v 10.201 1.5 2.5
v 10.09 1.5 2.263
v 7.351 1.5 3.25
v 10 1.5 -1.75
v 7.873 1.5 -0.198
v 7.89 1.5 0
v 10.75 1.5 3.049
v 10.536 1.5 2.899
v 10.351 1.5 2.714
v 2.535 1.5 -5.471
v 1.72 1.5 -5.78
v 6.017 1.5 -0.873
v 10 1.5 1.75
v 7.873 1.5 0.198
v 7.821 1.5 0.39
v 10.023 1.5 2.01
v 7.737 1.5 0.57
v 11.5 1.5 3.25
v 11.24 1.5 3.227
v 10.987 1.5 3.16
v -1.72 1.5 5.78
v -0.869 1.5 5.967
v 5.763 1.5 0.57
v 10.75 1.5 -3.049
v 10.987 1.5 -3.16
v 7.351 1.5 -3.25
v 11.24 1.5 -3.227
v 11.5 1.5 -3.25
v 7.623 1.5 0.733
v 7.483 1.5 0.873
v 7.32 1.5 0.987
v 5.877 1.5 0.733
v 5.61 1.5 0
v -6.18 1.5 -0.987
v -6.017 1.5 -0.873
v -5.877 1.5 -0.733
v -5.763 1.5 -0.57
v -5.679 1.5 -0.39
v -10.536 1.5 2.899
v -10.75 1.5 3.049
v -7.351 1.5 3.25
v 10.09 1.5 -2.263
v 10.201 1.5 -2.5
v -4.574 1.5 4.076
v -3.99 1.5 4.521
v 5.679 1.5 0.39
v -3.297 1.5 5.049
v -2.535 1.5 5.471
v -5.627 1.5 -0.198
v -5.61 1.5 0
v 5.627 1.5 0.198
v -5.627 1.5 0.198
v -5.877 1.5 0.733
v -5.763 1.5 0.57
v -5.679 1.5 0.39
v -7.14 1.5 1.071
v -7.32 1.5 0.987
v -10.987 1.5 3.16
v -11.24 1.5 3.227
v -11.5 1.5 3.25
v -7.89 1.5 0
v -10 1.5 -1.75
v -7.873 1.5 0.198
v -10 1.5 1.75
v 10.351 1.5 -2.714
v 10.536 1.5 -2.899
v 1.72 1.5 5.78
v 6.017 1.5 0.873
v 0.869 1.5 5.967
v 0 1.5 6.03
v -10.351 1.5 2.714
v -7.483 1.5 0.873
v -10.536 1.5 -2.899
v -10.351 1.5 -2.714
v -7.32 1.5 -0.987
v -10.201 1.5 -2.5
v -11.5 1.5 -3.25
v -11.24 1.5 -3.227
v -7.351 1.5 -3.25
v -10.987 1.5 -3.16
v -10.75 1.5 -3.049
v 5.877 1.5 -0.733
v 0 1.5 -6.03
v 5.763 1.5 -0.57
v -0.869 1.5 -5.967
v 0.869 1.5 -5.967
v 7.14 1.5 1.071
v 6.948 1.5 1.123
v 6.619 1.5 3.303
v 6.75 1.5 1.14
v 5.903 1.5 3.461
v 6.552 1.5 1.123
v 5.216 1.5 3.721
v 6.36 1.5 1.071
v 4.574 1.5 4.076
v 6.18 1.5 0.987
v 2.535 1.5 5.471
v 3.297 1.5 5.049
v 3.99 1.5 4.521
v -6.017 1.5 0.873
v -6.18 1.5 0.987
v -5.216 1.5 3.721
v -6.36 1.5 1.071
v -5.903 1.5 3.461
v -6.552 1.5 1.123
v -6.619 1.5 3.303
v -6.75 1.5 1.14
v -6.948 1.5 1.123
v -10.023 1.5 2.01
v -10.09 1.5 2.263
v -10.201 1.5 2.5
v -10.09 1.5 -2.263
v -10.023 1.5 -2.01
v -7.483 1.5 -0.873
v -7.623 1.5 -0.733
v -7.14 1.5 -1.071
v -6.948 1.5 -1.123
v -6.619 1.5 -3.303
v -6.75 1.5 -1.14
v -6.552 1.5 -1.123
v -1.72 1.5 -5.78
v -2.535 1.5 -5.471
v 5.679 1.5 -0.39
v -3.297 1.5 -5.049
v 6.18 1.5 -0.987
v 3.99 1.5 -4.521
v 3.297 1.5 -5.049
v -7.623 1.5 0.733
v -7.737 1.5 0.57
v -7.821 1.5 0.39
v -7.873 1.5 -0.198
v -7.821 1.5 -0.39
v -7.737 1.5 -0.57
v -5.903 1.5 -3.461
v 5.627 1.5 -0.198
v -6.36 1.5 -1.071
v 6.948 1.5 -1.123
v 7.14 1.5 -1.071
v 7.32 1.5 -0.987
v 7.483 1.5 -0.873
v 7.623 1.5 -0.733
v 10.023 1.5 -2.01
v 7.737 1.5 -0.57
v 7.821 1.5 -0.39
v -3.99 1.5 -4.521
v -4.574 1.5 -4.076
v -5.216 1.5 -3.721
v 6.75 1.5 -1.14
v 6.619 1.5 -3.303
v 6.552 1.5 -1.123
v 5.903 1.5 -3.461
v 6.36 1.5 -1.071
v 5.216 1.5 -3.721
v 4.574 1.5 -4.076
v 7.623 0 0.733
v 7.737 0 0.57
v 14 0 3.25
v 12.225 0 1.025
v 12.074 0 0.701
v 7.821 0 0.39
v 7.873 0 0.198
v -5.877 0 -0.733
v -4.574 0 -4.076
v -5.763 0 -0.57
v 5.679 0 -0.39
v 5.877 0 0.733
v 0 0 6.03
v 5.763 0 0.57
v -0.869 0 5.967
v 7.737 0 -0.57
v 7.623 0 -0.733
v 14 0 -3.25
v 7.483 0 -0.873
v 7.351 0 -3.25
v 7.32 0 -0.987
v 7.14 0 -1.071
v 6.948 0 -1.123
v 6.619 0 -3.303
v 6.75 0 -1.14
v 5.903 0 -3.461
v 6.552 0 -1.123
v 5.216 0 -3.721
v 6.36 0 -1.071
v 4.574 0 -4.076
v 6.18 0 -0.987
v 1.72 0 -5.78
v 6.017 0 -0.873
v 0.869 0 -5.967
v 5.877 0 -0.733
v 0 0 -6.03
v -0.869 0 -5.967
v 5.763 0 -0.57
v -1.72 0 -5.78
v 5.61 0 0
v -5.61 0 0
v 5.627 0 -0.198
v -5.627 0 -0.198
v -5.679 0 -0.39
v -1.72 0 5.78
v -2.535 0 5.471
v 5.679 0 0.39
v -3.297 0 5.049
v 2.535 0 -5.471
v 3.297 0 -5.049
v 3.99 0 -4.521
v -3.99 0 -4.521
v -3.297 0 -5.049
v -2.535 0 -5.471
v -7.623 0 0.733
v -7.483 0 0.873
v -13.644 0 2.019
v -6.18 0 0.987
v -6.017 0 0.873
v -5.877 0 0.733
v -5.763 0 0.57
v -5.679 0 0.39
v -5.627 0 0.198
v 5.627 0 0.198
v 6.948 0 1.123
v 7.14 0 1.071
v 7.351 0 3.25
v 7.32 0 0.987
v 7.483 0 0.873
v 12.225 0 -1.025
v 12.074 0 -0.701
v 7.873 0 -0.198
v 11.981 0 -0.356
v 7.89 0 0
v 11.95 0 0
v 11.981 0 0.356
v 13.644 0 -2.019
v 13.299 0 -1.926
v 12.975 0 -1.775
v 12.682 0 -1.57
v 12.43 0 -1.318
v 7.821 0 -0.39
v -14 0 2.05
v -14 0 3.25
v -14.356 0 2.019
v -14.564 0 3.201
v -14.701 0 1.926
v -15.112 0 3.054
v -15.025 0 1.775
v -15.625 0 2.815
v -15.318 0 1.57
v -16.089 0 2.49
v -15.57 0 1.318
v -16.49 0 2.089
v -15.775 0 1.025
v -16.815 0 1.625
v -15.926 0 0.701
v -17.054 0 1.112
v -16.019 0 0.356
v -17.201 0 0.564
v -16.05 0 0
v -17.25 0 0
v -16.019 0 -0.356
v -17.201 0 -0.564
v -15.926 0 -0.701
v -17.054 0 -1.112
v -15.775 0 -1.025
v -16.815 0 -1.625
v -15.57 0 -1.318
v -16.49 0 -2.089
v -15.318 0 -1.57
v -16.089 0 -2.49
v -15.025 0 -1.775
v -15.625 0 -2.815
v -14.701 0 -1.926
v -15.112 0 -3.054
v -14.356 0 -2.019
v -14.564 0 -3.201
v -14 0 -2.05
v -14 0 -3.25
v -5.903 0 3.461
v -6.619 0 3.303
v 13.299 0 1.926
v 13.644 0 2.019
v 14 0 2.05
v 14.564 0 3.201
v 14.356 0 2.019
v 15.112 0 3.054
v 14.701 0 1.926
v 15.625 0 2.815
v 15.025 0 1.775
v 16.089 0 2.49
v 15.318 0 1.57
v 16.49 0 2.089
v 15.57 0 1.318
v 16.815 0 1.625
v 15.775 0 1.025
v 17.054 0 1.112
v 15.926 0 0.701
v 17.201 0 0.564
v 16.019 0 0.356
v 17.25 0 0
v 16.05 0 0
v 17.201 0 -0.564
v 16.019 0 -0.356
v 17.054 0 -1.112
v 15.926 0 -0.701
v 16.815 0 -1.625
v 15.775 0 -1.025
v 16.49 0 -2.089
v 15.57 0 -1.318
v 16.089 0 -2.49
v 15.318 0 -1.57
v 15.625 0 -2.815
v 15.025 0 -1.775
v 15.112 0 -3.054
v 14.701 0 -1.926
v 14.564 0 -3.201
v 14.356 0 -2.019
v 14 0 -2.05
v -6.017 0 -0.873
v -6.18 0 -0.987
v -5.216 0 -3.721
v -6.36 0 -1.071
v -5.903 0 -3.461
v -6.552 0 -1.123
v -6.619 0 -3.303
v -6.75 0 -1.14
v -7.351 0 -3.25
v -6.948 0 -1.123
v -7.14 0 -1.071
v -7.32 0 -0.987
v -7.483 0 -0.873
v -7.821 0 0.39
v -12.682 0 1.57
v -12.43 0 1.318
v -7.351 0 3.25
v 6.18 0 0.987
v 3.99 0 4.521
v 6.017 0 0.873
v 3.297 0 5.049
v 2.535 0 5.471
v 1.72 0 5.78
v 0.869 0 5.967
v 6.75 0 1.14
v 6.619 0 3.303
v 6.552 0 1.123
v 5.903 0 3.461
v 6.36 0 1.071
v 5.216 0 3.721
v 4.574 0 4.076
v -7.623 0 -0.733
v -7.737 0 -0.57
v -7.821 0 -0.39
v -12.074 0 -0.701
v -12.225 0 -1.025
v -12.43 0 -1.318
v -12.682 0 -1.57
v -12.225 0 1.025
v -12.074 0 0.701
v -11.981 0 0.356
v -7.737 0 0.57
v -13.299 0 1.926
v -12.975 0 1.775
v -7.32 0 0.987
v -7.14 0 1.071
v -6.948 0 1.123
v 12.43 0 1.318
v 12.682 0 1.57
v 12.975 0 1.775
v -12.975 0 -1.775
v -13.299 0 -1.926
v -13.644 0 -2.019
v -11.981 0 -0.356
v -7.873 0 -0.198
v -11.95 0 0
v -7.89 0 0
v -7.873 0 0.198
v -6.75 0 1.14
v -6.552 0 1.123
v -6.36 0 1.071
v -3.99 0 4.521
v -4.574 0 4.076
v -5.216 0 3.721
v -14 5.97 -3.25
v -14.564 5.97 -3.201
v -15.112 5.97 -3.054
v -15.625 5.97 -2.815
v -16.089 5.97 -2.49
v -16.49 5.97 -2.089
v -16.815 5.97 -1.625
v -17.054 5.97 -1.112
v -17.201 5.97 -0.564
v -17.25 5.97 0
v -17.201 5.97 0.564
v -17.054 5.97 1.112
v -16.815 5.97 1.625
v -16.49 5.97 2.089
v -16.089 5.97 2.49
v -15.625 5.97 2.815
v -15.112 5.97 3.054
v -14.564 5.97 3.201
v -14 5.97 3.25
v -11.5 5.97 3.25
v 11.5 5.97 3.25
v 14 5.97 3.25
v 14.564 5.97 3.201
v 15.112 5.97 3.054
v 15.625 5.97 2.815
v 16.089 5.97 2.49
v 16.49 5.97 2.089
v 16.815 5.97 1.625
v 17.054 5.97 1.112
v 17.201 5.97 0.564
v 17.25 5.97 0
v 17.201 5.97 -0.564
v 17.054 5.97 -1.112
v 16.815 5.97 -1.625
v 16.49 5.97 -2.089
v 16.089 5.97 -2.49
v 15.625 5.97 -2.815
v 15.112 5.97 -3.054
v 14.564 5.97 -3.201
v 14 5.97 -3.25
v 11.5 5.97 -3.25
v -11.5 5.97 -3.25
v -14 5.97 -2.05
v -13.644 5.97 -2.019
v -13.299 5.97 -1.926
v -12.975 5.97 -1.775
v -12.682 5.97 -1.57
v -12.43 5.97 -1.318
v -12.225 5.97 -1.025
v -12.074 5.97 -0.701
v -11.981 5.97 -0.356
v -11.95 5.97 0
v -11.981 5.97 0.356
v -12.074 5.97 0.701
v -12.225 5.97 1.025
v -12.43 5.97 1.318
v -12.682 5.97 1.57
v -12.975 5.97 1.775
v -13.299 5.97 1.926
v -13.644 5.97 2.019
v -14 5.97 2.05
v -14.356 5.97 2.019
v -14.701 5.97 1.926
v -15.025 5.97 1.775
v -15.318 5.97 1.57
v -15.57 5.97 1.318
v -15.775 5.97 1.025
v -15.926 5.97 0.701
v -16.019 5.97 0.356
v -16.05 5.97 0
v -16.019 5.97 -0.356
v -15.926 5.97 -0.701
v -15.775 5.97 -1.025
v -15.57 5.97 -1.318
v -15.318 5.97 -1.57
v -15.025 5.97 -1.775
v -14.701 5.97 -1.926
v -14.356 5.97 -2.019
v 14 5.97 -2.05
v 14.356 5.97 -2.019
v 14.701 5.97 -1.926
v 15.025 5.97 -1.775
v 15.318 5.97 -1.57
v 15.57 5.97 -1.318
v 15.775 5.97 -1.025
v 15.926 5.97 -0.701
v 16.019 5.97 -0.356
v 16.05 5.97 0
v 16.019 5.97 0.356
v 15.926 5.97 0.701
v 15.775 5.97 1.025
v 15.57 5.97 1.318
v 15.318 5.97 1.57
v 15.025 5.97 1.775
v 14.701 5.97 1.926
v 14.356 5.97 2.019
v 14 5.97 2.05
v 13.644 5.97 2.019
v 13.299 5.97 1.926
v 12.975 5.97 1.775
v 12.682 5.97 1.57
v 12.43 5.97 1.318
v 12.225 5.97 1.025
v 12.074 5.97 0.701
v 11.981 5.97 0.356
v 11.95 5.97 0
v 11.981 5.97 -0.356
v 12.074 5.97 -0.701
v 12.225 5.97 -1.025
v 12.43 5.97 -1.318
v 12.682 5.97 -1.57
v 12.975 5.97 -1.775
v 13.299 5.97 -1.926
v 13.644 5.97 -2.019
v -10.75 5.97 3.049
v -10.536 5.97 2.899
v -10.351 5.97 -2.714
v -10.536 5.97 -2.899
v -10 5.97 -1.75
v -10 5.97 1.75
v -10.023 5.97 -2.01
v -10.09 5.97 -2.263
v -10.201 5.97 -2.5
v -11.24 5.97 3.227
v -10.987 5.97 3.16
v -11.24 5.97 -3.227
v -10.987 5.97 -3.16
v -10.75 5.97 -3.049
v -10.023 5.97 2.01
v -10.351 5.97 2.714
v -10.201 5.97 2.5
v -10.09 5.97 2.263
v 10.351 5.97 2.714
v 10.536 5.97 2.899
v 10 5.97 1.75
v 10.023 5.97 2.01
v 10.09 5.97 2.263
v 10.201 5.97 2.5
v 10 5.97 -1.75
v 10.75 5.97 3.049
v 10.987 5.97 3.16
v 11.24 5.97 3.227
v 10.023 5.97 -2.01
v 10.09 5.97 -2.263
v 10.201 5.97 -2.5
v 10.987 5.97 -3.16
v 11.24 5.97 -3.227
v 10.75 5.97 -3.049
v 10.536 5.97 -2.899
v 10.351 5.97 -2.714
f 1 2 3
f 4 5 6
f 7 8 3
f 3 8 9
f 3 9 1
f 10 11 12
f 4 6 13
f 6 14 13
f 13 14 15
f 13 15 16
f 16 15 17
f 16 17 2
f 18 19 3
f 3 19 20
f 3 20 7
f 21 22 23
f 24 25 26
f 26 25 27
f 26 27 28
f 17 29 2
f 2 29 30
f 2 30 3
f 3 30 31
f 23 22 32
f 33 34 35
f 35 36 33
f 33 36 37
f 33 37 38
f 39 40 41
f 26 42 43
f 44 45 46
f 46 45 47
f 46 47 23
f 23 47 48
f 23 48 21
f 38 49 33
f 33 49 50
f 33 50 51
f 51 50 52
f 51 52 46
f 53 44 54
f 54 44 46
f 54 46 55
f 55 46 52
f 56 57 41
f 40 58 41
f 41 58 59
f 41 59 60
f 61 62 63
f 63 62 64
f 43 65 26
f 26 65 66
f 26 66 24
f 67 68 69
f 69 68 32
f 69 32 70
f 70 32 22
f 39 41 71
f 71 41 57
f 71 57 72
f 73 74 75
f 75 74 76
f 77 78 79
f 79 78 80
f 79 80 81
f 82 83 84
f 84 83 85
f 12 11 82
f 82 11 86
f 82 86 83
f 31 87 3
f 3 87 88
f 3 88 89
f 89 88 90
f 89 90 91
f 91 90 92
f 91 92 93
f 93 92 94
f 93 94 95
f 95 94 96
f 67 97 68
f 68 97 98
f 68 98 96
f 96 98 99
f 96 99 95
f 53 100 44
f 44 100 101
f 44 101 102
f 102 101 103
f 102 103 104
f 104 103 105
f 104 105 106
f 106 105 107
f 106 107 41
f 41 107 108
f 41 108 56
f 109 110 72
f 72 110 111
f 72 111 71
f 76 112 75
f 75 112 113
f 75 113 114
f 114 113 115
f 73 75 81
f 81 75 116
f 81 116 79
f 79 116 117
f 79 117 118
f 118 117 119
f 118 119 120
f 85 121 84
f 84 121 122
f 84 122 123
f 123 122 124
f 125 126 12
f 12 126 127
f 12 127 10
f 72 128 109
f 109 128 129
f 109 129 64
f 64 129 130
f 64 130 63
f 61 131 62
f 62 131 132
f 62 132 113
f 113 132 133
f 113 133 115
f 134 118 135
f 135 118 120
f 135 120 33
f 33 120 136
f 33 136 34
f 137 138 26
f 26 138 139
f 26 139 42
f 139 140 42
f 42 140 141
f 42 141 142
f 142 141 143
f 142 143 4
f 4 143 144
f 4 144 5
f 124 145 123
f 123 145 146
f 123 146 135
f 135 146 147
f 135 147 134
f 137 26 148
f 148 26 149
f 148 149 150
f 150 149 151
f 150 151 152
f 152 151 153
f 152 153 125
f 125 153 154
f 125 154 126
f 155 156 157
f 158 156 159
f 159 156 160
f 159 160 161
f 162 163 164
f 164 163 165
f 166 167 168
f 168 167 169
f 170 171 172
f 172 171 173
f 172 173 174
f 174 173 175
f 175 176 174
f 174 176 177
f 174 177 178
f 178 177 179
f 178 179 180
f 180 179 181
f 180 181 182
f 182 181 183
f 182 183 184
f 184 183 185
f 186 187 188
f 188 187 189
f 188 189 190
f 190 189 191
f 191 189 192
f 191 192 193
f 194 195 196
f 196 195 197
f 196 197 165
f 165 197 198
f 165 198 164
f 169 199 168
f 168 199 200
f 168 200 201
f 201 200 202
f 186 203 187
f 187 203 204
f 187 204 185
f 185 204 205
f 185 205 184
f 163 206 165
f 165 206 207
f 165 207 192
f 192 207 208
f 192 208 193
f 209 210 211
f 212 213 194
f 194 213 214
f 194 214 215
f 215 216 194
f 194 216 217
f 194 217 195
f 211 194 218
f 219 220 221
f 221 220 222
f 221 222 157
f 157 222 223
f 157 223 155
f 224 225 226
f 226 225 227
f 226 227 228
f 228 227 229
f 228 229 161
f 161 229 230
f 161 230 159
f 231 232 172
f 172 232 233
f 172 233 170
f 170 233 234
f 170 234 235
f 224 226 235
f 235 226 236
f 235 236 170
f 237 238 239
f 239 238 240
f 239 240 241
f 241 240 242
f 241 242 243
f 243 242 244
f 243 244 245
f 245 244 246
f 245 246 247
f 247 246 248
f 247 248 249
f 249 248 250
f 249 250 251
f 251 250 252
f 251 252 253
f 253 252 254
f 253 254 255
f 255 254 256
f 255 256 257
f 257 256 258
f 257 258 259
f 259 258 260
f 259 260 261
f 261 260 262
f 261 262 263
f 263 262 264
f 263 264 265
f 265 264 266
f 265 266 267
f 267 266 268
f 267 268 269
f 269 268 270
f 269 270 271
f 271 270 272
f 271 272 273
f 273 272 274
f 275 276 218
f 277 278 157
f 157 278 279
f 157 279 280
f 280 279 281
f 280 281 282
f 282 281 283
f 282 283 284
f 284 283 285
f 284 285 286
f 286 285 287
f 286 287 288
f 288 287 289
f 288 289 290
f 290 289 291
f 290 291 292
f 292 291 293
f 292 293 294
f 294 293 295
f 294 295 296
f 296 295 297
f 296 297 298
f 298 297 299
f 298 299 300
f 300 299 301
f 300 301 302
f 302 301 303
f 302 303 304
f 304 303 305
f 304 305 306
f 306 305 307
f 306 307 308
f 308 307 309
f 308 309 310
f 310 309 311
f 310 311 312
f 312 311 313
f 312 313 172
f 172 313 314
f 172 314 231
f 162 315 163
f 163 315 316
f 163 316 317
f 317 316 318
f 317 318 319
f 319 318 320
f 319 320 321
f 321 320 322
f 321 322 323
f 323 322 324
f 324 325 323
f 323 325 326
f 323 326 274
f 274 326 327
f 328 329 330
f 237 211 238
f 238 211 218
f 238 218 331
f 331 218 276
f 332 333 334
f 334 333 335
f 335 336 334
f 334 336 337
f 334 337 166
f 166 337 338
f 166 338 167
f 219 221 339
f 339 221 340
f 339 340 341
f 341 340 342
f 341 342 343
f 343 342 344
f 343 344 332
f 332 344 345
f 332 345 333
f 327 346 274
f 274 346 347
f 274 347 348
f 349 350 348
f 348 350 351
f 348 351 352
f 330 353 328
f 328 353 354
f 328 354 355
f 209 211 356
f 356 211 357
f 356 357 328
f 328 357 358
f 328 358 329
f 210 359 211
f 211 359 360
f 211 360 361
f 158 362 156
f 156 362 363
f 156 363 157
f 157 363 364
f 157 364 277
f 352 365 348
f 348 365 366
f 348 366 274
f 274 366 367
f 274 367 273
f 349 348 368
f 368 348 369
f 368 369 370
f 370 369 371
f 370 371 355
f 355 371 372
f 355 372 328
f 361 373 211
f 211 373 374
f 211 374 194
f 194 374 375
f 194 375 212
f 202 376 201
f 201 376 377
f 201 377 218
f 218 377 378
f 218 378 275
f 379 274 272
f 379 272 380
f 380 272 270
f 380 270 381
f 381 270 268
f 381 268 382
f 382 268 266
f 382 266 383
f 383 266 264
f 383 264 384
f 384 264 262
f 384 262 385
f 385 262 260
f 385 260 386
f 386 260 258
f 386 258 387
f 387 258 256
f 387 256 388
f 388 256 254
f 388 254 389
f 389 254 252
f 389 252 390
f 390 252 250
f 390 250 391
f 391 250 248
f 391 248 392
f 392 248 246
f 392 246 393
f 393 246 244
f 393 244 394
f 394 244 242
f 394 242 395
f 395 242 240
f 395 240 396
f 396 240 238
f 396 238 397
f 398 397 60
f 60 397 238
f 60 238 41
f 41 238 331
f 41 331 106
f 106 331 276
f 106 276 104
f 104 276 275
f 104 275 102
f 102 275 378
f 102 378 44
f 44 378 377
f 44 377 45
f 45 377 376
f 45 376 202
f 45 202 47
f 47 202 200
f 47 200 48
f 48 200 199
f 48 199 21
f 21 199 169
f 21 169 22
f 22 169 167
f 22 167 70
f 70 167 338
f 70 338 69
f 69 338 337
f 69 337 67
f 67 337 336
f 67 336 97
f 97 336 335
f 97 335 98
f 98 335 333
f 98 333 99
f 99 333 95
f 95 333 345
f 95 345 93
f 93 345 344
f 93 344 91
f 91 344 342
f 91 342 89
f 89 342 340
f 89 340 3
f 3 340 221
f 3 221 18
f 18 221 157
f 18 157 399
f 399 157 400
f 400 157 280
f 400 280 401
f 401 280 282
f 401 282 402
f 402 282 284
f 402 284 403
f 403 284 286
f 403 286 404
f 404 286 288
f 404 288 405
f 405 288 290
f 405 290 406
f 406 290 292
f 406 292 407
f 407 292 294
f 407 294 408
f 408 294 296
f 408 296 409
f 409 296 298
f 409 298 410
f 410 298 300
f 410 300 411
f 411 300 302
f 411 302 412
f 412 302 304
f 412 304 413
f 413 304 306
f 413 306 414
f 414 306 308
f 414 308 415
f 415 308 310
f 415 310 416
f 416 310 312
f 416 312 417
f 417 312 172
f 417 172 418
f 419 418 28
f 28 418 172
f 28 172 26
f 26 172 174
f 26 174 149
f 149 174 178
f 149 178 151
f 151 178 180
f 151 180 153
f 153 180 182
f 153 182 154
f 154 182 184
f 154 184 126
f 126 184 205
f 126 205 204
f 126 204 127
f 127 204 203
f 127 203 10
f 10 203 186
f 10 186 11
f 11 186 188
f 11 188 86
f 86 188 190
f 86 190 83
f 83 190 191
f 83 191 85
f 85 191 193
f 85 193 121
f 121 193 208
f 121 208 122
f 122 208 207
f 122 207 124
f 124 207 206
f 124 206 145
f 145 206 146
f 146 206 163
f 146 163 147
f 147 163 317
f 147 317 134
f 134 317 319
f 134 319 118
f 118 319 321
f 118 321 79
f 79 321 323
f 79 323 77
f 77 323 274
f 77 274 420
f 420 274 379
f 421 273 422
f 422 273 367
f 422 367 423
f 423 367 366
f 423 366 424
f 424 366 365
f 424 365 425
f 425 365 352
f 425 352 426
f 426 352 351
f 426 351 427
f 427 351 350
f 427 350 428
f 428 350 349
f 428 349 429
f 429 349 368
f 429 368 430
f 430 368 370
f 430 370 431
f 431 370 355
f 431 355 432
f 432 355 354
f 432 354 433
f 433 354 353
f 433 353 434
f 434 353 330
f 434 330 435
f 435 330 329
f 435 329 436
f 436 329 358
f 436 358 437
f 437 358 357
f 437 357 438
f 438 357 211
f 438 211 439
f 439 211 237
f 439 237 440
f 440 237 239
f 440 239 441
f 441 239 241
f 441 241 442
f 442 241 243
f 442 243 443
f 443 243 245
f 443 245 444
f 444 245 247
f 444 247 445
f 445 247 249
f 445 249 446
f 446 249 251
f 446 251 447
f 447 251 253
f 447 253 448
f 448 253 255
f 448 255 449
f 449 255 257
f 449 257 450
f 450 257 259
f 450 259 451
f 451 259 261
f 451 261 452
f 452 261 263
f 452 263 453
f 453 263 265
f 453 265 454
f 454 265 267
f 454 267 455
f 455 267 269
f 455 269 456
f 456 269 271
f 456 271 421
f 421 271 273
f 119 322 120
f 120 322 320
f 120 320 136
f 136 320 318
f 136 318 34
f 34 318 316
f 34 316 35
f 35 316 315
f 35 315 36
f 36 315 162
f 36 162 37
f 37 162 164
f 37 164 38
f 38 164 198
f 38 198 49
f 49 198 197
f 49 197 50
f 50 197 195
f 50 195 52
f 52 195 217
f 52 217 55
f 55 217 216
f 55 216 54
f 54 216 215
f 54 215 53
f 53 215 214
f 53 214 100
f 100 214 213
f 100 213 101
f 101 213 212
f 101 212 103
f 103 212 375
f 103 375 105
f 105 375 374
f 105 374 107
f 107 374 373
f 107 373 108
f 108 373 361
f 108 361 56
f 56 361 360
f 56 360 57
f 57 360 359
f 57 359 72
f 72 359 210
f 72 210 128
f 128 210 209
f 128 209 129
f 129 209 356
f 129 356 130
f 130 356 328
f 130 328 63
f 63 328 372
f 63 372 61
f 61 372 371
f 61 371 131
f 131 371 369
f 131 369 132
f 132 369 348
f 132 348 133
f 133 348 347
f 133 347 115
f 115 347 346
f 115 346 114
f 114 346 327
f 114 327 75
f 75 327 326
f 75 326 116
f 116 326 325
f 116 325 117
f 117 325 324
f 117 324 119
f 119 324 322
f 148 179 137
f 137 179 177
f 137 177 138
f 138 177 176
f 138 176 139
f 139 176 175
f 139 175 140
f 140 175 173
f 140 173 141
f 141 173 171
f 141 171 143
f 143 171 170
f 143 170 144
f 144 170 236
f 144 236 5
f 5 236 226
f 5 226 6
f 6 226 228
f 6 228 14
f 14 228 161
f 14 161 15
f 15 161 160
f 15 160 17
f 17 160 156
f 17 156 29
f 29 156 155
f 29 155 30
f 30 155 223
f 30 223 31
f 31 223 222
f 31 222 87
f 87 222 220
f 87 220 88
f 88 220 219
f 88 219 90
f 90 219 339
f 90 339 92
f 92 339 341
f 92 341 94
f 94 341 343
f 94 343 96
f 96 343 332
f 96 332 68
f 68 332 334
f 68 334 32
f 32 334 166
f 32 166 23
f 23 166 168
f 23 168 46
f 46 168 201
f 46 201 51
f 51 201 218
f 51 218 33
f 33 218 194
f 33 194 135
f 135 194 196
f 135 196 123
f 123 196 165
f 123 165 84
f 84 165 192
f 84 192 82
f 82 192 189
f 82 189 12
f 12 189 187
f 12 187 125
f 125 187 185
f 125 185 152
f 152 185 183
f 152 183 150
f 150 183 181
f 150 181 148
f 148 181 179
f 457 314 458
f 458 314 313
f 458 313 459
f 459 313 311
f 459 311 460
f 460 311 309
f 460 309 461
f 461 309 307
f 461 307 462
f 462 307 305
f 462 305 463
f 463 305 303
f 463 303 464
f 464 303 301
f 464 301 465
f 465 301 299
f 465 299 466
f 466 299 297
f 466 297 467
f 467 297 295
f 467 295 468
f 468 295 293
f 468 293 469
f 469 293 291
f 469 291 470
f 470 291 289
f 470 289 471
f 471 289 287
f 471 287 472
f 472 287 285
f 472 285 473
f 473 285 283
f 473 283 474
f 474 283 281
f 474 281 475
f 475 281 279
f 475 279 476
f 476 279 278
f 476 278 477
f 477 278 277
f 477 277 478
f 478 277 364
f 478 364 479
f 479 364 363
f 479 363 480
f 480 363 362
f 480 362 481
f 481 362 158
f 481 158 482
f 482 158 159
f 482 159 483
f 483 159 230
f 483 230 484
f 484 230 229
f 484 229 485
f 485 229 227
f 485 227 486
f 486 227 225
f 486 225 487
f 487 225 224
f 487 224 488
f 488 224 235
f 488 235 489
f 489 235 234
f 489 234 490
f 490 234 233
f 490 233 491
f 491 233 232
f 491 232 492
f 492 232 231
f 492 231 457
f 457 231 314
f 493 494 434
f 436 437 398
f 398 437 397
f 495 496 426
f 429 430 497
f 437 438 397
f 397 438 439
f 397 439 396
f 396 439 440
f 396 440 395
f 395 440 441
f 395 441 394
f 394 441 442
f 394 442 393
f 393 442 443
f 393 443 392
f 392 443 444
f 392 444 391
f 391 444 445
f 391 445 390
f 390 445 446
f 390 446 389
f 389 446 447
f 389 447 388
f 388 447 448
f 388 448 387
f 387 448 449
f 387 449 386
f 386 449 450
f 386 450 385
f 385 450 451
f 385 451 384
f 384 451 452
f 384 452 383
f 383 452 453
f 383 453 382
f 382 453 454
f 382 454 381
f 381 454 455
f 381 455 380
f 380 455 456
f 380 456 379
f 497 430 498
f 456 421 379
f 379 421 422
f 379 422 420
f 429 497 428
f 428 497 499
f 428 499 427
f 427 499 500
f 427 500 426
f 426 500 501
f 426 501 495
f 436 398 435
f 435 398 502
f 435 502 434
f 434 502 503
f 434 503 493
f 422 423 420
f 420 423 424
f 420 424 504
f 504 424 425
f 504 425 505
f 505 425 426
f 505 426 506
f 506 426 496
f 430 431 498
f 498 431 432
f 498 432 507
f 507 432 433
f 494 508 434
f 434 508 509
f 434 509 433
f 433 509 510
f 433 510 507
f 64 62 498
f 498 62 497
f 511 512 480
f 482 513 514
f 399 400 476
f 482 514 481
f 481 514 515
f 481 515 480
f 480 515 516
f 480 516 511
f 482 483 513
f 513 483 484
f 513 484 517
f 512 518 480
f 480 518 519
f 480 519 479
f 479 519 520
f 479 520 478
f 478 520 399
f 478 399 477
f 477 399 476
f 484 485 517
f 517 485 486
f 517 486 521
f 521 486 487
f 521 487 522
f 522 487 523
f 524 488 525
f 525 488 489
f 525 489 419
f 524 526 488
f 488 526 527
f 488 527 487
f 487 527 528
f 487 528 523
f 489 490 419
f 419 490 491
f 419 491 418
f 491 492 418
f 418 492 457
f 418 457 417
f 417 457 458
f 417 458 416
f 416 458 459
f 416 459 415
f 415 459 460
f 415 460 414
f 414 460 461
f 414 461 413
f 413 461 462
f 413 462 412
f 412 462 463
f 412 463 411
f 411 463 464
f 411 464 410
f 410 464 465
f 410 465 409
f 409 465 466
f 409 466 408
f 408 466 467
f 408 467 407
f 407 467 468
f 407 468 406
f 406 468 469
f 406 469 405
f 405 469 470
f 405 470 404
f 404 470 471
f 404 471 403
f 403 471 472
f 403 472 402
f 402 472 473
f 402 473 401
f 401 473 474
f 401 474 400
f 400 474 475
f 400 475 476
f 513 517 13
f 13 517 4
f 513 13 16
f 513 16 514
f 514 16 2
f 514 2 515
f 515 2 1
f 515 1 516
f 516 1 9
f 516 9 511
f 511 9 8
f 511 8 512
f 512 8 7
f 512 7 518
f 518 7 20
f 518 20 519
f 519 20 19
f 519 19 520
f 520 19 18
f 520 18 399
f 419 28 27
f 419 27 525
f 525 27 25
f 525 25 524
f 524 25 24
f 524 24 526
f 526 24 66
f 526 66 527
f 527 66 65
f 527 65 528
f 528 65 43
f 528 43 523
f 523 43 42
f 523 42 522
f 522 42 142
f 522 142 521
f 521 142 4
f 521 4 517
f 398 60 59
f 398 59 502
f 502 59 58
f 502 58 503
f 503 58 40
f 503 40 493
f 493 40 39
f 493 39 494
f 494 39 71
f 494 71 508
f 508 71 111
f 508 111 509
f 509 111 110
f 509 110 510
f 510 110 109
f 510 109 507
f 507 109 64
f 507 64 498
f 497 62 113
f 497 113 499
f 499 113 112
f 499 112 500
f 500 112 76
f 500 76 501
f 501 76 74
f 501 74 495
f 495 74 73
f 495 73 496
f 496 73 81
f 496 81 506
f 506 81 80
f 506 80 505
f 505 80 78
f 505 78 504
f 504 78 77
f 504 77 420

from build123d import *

# Parameters (mm, degrees)
SKETCH1_R           = 1.14
SKETCH1_R_2         = 2.05
BOSS_EXTRUDE2_DEPTH = 1.5
SKETCH2_R           = 2.05
BOSS_EXTRUDE3_DEPTH = 4.47
FILLET1_R           = 1.5


with BuildPart() as part:
    # Sketch1 → Boss-Extrude2 (new body)
    with BuildSketch(Plane(origin=(0, 0, 0), x_dir=(1, 0, 0), z_dir=(0, 1, 0))):
        with BuildLine():
            Line((-7.351408028, 3.25), (-14, 3.25))
            ThreePointArc((-14, 3.25), (-17.25, 0), (-14, -3.25))
            Line((-14, -3.25), (-7.351408028, -3.25))
            ThreePointArc((-7.351408028, -3.25), (-5.554548682, -3.578400639), (-3.990008138, -4.521143114))
            ThreePointArc((-3.990008138, -4.521143114), (0, -6.03), (3.990008138, -4.521143114))
            ThreePointArc((3.990008138, -4.521143114), (5.554548682, -3.578400639), (7.351408028, -3.25))
            Line((7.351408028, -3.25), (14, -3.25))
            ThreePointArc((14, -3.25), (17.25, 0), (14, 3.25))
            Line((14, 3.25), (7.351408028, 3.25))
            ThreePointArc((7.351408028, 3.25), (5.554548682, 3.578400639), (3.990008138, 4.521143114))
            ThreePointArc((3.990008138, 4.521143114), (0, 6.03), (-3.990008138, 4.521143114))
            ThreePointArc((-3.990008138, 4.521143114), (-5.554548682, 3.578400639), (-7.351408028, 3.25))
        make_face()
        with Locations(Location((-6.75, 0, 0), (0, 0, 270))):
            Circle(SKETCH1_R, mode=Mode.SUBTRACT)
        with Locations(Location((-14, 0, 0), (0, 0, 270))):
            Circle(SKETCH1_R_2, mode=Mode.SUBTRACT)
        with Locations(Location((6.75, 0, 0), (0, 0, 90))):
            Circle(SKETCH1_R, mode=Mode.SUBTRACT)
        with Locations(Location((14, 0, 0), (0, 0, 90))):
            Circle(SKETCH1_R_2, mode=Mode.SUBTRACT)
    extrude(amount=BOSS_EXTRUDE2_DEPTH)

    # Sketch2 → Boss-Extrude3 (add)
    # profile 1 of 2: a face of its own
    with BuildSketch(Plane(origin=(0, 1.5, 0), x_dir=(1, 0, 0), z_dir=(0, 1, 0))):
        with BuildLine():
            Line((-14, 3.25), (-10, 3.25))
            Line((-10, 3.25), (-10, -3.25))
            Line((-10, -3.25), (-14, -3.25))
            ThreePointArc((-14, -3.25), (-17.25, 0), (-14, 3.25))
        make_face()
        with Locations(Location((-14, 0, 0), (0, 0, 270))):
            Circle(SKETCH2_R, mode=Mode.SUBTRACT)
    # profile 2 of 2: a face of its own
    with BuildSketch(Plane(origin=(0, 1.5, 0), x_dir=(1, 0, 0), z_dir=(0, 1, 0))):
        with BuildLine():
            Line((10, -3.25), (14, -3.25))
            ThreePointArc((14, -3.25), (17.25, 0), (14, 3.25))
            Line((14, 3.25), (10, 3.25))
            Line((10, 3.25), (10, -3.25))
        make_face()
        with Locations(Location((14, 0, 0), (0, 0, 90))):
            Circle(SKETCH2_R, mode=Mode.SUBTRACT)
    extrude(amount=BOSS_EXTRUDE3_DEPTH)

    # Fillet1
    fillet1_edges = [part.edges().sort_by_distance(p)[0] for p in [
        (-10, 3.735, 3.25),
        (-10, 3.735, -3.25),
        (10, 3.735, -3.25),
        (10, 3.735, 3.25),
    ]]
    fillet(fillet1_edges, radius=FILLET1_R)


solid = part.part
